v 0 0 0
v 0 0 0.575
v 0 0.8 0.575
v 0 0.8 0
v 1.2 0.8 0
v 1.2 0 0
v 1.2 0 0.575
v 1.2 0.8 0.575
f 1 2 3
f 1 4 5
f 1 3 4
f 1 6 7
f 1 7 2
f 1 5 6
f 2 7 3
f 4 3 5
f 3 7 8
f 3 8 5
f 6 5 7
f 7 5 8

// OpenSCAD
/* Warning, this is a very basic generator with a lot of approximation 
input data : [WLCSP, FMA, 1.2x0.8x0.575mm, 6, , B, C04-01188B]
generated by com.zoubworld.electronics.cad.model3d.Basic
Date : Sun Feb 15 10:50:49 CET 2026
*/

//body
color("black")
translate([0,0,0])
cube([1.2,0.8,0.575], center=false);
